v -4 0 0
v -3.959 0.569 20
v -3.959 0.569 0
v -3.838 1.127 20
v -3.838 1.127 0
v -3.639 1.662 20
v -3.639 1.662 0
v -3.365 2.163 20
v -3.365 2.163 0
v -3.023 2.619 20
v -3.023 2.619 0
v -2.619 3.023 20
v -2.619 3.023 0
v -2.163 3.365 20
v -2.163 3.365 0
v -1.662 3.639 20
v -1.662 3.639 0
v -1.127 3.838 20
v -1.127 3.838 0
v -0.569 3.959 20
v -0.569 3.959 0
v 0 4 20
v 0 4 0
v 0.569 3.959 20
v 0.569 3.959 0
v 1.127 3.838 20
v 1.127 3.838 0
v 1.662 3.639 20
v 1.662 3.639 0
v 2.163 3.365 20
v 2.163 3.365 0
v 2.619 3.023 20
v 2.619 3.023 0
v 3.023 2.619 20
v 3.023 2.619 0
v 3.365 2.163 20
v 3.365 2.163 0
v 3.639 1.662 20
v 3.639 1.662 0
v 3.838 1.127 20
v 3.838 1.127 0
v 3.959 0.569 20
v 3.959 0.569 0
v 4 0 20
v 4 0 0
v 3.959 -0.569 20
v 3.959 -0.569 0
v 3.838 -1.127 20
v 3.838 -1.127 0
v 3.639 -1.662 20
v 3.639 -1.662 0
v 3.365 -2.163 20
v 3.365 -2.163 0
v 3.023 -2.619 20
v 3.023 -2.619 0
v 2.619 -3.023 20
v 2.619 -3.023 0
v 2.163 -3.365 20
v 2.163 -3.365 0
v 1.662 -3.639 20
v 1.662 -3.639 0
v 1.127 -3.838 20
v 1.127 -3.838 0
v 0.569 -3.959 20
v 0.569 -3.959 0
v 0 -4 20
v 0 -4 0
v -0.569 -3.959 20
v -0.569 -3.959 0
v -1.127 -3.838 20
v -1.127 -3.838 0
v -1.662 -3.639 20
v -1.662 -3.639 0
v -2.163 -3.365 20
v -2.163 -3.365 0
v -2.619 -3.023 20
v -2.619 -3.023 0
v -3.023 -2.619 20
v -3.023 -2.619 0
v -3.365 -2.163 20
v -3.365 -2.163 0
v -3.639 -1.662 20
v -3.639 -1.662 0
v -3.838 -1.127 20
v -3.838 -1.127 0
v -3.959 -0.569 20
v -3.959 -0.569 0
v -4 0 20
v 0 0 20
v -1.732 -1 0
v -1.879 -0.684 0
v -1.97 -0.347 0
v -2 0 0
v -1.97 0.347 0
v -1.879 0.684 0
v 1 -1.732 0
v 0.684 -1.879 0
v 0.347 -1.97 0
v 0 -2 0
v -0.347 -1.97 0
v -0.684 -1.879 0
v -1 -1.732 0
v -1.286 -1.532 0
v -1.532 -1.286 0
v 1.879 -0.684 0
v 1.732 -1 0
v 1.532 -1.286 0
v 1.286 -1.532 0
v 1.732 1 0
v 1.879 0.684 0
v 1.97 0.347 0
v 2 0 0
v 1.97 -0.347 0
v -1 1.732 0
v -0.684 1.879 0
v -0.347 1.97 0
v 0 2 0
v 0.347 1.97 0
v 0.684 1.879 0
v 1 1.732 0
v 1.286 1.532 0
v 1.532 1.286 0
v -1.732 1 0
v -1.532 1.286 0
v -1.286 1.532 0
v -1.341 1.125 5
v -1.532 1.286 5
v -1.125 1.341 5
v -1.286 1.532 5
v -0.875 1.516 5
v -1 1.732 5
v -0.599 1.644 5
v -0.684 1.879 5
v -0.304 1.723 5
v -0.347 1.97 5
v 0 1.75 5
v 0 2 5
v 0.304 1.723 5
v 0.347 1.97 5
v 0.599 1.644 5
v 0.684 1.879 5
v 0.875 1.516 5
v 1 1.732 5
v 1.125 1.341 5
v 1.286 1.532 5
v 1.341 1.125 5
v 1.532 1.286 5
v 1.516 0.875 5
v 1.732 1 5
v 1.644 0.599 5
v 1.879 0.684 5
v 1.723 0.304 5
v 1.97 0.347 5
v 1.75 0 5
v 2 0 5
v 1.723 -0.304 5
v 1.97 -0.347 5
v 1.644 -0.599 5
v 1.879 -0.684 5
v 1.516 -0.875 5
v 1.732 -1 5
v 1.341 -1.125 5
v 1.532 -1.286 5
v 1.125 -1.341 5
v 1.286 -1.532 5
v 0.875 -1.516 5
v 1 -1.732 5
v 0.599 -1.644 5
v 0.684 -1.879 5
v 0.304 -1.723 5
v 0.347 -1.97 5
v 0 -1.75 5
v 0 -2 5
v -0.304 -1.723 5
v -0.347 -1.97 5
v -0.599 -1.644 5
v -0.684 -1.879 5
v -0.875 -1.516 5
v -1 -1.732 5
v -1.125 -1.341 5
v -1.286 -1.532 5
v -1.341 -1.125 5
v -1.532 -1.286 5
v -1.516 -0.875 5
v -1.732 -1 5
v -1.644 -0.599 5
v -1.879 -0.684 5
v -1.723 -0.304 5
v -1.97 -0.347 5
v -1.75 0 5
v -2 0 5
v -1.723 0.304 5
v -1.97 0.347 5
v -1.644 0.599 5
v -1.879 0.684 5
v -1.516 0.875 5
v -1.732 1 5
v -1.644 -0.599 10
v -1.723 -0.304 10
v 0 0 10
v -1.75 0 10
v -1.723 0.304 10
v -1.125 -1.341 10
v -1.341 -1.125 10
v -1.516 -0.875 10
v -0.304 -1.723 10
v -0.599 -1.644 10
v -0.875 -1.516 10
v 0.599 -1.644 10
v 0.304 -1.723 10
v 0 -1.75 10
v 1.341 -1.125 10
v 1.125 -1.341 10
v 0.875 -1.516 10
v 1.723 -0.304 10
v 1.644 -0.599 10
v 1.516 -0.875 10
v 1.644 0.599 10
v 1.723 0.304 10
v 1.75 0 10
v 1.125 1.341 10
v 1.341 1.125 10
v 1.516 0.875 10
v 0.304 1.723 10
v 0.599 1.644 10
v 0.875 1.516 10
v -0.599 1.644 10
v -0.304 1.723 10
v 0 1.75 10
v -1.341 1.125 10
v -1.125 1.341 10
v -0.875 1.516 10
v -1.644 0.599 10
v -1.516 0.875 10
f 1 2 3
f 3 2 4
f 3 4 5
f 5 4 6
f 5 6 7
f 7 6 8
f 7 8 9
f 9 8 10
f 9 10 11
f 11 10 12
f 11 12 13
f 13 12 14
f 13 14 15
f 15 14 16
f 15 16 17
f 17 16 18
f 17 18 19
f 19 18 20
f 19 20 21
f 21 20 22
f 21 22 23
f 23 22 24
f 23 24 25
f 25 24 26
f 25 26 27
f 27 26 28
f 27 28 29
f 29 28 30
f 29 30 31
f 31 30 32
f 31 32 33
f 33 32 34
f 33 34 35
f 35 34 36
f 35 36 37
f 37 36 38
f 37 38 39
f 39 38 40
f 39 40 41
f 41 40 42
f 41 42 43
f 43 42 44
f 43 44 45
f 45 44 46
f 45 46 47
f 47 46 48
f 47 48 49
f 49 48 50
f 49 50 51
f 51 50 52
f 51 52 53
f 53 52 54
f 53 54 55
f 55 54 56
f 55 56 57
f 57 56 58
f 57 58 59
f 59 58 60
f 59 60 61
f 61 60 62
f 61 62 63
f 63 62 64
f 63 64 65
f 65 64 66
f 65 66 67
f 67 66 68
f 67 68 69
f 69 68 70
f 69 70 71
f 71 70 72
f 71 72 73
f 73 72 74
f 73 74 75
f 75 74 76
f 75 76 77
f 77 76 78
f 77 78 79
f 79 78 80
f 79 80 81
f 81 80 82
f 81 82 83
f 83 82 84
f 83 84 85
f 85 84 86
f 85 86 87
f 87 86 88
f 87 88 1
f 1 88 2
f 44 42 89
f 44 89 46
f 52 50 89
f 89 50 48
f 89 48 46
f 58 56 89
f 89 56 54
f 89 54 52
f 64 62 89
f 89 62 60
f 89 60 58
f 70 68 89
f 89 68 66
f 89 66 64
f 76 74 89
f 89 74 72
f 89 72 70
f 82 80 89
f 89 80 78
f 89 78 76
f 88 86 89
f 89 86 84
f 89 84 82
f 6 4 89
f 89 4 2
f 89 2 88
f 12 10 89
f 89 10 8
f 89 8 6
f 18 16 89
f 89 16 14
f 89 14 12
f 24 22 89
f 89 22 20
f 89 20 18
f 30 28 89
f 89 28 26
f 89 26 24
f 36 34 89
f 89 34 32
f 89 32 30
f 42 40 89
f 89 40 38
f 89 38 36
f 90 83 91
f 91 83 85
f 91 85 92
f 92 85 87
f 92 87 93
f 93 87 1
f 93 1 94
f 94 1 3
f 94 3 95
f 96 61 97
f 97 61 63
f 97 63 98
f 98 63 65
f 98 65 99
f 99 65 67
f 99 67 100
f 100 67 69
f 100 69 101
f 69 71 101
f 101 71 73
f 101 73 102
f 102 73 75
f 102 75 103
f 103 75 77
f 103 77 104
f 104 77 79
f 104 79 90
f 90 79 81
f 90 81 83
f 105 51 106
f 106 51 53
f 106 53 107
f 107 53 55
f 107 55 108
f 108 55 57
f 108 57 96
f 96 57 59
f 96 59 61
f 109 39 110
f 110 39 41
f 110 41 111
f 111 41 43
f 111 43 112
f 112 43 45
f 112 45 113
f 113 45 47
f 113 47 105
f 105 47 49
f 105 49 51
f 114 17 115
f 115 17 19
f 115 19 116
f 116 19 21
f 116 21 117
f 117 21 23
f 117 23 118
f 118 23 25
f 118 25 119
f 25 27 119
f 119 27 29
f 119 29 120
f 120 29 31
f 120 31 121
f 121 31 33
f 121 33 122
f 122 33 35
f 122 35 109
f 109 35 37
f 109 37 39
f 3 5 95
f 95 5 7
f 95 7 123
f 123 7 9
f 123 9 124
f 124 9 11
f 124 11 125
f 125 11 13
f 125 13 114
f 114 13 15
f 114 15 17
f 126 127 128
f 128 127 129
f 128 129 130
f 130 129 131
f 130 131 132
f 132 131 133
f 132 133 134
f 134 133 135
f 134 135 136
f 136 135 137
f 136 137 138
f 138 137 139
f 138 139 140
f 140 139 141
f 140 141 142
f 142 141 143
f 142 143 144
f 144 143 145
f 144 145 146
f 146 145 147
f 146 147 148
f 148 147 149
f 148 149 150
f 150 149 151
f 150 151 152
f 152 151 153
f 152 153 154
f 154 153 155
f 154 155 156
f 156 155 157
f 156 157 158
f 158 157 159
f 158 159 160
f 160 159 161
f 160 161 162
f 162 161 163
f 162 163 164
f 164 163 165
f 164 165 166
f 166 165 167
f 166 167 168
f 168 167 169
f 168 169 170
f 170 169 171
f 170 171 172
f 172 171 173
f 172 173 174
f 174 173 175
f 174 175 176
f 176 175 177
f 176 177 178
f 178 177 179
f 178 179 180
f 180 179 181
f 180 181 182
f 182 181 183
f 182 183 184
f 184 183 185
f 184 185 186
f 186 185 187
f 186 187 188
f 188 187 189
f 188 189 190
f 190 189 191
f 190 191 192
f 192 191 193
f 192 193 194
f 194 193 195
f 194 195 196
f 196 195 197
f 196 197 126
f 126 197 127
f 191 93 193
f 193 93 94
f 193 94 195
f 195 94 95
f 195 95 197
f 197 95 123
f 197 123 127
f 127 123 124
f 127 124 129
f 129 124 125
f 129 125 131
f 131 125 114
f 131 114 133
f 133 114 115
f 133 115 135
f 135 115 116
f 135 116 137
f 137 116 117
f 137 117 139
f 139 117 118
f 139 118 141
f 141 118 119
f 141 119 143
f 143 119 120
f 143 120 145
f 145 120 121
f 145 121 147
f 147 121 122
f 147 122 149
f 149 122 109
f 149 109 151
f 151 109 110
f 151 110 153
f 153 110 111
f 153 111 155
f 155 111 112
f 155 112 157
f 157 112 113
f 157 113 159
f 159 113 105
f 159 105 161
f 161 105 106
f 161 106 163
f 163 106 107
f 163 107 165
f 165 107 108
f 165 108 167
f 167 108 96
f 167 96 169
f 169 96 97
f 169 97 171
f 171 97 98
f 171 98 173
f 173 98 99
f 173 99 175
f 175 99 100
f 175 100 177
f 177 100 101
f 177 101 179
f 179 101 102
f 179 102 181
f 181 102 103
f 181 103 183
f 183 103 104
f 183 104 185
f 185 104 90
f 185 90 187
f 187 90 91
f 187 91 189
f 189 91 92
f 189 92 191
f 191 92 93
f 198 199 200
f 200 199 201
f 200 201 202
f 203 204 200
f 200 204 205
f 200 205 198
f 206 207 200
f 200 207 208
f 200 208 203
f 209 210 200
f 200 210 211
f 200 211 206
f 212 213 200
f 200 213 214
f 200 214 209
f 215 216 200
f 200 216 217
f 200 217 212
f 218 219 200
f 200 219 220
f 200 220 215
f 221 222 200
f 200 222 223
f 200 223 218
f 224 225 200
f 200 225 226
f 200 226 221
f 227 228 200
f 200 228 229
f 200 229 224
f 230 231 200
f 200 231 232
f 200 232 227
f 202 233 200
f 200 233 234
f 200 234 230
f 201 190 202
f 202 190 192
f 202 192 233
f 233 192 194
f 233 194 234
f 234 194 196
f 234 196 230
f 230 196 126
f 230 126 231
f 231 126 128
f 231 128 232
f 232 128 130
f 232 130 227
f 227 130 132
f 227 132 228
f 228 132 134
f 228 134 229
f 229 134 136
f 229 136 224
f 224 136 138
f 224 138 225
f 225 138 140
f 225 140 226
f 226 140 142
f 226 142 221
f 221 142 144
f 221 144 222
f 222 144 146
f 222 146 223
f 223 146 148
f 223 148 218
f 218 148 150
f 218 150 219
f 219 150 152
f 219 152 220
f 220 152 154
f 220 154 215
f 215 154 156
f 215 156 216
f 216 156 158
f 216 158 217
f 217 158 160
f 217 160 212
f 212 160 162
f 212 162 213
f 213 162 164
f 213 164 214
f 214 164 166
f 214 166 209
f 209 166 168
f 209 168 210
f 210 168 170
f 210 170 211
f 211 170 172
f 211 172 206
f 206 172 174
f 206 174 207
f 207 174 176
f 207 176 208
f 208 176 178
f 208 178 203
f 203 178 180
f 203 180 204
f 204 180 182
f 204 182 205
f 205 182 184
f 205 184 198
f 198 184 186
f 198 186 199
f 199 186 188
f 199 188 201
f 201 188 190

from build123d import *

# Parameters (mm, degrees)
ESQUISSE1_R             = 4
BOSS_EXTRU_1_DEPTH      = 20
ESQUISSE2_R             = 1.75
ENL_V_MAT_EXTRU_1_DEPTH = 10
ESQUISSE3_R             = 2
ENL_V_MAT_EXTRU_2_DEPTH = 5


with BuildPart() as part:
    # Esquisse1 → Boss.-Extru.1 (new body)
    with BuildSketch(Plane.XY):
        Circle(ESQUISSE1_R)
    extrude(amount=BOSS_EXTRU_1_DEPTH)

    # Esquisse2 → Enlèv. mat.-Extru.1 (cut)
    with BuildSketch(Plane(origin=(0, 0, 0), x_dir=(-1, 0, 0), z_dir=(0, 0, -1))):
        Circle(ESQUISSE2_R)
    extrude(amount=-ENL_V_MAT_EXTRU_1_DEPTH, mode=Mode.SUBTRACT)

    # Esquisse3 → Enlèv. mat.-Extru.2 (cut)
    with BuildSketch(Plane(origin=(0, 0, 0), x_dir=(-1, 0, 0), z_dir=(0, 0, -1))):
        Circle(ESQUISSE3_R)
    extrude(amount=-ENL_V_MAT_EXTRU_2_DEPTH, mode=Mode.SUBTRACT)


solid = part.part
